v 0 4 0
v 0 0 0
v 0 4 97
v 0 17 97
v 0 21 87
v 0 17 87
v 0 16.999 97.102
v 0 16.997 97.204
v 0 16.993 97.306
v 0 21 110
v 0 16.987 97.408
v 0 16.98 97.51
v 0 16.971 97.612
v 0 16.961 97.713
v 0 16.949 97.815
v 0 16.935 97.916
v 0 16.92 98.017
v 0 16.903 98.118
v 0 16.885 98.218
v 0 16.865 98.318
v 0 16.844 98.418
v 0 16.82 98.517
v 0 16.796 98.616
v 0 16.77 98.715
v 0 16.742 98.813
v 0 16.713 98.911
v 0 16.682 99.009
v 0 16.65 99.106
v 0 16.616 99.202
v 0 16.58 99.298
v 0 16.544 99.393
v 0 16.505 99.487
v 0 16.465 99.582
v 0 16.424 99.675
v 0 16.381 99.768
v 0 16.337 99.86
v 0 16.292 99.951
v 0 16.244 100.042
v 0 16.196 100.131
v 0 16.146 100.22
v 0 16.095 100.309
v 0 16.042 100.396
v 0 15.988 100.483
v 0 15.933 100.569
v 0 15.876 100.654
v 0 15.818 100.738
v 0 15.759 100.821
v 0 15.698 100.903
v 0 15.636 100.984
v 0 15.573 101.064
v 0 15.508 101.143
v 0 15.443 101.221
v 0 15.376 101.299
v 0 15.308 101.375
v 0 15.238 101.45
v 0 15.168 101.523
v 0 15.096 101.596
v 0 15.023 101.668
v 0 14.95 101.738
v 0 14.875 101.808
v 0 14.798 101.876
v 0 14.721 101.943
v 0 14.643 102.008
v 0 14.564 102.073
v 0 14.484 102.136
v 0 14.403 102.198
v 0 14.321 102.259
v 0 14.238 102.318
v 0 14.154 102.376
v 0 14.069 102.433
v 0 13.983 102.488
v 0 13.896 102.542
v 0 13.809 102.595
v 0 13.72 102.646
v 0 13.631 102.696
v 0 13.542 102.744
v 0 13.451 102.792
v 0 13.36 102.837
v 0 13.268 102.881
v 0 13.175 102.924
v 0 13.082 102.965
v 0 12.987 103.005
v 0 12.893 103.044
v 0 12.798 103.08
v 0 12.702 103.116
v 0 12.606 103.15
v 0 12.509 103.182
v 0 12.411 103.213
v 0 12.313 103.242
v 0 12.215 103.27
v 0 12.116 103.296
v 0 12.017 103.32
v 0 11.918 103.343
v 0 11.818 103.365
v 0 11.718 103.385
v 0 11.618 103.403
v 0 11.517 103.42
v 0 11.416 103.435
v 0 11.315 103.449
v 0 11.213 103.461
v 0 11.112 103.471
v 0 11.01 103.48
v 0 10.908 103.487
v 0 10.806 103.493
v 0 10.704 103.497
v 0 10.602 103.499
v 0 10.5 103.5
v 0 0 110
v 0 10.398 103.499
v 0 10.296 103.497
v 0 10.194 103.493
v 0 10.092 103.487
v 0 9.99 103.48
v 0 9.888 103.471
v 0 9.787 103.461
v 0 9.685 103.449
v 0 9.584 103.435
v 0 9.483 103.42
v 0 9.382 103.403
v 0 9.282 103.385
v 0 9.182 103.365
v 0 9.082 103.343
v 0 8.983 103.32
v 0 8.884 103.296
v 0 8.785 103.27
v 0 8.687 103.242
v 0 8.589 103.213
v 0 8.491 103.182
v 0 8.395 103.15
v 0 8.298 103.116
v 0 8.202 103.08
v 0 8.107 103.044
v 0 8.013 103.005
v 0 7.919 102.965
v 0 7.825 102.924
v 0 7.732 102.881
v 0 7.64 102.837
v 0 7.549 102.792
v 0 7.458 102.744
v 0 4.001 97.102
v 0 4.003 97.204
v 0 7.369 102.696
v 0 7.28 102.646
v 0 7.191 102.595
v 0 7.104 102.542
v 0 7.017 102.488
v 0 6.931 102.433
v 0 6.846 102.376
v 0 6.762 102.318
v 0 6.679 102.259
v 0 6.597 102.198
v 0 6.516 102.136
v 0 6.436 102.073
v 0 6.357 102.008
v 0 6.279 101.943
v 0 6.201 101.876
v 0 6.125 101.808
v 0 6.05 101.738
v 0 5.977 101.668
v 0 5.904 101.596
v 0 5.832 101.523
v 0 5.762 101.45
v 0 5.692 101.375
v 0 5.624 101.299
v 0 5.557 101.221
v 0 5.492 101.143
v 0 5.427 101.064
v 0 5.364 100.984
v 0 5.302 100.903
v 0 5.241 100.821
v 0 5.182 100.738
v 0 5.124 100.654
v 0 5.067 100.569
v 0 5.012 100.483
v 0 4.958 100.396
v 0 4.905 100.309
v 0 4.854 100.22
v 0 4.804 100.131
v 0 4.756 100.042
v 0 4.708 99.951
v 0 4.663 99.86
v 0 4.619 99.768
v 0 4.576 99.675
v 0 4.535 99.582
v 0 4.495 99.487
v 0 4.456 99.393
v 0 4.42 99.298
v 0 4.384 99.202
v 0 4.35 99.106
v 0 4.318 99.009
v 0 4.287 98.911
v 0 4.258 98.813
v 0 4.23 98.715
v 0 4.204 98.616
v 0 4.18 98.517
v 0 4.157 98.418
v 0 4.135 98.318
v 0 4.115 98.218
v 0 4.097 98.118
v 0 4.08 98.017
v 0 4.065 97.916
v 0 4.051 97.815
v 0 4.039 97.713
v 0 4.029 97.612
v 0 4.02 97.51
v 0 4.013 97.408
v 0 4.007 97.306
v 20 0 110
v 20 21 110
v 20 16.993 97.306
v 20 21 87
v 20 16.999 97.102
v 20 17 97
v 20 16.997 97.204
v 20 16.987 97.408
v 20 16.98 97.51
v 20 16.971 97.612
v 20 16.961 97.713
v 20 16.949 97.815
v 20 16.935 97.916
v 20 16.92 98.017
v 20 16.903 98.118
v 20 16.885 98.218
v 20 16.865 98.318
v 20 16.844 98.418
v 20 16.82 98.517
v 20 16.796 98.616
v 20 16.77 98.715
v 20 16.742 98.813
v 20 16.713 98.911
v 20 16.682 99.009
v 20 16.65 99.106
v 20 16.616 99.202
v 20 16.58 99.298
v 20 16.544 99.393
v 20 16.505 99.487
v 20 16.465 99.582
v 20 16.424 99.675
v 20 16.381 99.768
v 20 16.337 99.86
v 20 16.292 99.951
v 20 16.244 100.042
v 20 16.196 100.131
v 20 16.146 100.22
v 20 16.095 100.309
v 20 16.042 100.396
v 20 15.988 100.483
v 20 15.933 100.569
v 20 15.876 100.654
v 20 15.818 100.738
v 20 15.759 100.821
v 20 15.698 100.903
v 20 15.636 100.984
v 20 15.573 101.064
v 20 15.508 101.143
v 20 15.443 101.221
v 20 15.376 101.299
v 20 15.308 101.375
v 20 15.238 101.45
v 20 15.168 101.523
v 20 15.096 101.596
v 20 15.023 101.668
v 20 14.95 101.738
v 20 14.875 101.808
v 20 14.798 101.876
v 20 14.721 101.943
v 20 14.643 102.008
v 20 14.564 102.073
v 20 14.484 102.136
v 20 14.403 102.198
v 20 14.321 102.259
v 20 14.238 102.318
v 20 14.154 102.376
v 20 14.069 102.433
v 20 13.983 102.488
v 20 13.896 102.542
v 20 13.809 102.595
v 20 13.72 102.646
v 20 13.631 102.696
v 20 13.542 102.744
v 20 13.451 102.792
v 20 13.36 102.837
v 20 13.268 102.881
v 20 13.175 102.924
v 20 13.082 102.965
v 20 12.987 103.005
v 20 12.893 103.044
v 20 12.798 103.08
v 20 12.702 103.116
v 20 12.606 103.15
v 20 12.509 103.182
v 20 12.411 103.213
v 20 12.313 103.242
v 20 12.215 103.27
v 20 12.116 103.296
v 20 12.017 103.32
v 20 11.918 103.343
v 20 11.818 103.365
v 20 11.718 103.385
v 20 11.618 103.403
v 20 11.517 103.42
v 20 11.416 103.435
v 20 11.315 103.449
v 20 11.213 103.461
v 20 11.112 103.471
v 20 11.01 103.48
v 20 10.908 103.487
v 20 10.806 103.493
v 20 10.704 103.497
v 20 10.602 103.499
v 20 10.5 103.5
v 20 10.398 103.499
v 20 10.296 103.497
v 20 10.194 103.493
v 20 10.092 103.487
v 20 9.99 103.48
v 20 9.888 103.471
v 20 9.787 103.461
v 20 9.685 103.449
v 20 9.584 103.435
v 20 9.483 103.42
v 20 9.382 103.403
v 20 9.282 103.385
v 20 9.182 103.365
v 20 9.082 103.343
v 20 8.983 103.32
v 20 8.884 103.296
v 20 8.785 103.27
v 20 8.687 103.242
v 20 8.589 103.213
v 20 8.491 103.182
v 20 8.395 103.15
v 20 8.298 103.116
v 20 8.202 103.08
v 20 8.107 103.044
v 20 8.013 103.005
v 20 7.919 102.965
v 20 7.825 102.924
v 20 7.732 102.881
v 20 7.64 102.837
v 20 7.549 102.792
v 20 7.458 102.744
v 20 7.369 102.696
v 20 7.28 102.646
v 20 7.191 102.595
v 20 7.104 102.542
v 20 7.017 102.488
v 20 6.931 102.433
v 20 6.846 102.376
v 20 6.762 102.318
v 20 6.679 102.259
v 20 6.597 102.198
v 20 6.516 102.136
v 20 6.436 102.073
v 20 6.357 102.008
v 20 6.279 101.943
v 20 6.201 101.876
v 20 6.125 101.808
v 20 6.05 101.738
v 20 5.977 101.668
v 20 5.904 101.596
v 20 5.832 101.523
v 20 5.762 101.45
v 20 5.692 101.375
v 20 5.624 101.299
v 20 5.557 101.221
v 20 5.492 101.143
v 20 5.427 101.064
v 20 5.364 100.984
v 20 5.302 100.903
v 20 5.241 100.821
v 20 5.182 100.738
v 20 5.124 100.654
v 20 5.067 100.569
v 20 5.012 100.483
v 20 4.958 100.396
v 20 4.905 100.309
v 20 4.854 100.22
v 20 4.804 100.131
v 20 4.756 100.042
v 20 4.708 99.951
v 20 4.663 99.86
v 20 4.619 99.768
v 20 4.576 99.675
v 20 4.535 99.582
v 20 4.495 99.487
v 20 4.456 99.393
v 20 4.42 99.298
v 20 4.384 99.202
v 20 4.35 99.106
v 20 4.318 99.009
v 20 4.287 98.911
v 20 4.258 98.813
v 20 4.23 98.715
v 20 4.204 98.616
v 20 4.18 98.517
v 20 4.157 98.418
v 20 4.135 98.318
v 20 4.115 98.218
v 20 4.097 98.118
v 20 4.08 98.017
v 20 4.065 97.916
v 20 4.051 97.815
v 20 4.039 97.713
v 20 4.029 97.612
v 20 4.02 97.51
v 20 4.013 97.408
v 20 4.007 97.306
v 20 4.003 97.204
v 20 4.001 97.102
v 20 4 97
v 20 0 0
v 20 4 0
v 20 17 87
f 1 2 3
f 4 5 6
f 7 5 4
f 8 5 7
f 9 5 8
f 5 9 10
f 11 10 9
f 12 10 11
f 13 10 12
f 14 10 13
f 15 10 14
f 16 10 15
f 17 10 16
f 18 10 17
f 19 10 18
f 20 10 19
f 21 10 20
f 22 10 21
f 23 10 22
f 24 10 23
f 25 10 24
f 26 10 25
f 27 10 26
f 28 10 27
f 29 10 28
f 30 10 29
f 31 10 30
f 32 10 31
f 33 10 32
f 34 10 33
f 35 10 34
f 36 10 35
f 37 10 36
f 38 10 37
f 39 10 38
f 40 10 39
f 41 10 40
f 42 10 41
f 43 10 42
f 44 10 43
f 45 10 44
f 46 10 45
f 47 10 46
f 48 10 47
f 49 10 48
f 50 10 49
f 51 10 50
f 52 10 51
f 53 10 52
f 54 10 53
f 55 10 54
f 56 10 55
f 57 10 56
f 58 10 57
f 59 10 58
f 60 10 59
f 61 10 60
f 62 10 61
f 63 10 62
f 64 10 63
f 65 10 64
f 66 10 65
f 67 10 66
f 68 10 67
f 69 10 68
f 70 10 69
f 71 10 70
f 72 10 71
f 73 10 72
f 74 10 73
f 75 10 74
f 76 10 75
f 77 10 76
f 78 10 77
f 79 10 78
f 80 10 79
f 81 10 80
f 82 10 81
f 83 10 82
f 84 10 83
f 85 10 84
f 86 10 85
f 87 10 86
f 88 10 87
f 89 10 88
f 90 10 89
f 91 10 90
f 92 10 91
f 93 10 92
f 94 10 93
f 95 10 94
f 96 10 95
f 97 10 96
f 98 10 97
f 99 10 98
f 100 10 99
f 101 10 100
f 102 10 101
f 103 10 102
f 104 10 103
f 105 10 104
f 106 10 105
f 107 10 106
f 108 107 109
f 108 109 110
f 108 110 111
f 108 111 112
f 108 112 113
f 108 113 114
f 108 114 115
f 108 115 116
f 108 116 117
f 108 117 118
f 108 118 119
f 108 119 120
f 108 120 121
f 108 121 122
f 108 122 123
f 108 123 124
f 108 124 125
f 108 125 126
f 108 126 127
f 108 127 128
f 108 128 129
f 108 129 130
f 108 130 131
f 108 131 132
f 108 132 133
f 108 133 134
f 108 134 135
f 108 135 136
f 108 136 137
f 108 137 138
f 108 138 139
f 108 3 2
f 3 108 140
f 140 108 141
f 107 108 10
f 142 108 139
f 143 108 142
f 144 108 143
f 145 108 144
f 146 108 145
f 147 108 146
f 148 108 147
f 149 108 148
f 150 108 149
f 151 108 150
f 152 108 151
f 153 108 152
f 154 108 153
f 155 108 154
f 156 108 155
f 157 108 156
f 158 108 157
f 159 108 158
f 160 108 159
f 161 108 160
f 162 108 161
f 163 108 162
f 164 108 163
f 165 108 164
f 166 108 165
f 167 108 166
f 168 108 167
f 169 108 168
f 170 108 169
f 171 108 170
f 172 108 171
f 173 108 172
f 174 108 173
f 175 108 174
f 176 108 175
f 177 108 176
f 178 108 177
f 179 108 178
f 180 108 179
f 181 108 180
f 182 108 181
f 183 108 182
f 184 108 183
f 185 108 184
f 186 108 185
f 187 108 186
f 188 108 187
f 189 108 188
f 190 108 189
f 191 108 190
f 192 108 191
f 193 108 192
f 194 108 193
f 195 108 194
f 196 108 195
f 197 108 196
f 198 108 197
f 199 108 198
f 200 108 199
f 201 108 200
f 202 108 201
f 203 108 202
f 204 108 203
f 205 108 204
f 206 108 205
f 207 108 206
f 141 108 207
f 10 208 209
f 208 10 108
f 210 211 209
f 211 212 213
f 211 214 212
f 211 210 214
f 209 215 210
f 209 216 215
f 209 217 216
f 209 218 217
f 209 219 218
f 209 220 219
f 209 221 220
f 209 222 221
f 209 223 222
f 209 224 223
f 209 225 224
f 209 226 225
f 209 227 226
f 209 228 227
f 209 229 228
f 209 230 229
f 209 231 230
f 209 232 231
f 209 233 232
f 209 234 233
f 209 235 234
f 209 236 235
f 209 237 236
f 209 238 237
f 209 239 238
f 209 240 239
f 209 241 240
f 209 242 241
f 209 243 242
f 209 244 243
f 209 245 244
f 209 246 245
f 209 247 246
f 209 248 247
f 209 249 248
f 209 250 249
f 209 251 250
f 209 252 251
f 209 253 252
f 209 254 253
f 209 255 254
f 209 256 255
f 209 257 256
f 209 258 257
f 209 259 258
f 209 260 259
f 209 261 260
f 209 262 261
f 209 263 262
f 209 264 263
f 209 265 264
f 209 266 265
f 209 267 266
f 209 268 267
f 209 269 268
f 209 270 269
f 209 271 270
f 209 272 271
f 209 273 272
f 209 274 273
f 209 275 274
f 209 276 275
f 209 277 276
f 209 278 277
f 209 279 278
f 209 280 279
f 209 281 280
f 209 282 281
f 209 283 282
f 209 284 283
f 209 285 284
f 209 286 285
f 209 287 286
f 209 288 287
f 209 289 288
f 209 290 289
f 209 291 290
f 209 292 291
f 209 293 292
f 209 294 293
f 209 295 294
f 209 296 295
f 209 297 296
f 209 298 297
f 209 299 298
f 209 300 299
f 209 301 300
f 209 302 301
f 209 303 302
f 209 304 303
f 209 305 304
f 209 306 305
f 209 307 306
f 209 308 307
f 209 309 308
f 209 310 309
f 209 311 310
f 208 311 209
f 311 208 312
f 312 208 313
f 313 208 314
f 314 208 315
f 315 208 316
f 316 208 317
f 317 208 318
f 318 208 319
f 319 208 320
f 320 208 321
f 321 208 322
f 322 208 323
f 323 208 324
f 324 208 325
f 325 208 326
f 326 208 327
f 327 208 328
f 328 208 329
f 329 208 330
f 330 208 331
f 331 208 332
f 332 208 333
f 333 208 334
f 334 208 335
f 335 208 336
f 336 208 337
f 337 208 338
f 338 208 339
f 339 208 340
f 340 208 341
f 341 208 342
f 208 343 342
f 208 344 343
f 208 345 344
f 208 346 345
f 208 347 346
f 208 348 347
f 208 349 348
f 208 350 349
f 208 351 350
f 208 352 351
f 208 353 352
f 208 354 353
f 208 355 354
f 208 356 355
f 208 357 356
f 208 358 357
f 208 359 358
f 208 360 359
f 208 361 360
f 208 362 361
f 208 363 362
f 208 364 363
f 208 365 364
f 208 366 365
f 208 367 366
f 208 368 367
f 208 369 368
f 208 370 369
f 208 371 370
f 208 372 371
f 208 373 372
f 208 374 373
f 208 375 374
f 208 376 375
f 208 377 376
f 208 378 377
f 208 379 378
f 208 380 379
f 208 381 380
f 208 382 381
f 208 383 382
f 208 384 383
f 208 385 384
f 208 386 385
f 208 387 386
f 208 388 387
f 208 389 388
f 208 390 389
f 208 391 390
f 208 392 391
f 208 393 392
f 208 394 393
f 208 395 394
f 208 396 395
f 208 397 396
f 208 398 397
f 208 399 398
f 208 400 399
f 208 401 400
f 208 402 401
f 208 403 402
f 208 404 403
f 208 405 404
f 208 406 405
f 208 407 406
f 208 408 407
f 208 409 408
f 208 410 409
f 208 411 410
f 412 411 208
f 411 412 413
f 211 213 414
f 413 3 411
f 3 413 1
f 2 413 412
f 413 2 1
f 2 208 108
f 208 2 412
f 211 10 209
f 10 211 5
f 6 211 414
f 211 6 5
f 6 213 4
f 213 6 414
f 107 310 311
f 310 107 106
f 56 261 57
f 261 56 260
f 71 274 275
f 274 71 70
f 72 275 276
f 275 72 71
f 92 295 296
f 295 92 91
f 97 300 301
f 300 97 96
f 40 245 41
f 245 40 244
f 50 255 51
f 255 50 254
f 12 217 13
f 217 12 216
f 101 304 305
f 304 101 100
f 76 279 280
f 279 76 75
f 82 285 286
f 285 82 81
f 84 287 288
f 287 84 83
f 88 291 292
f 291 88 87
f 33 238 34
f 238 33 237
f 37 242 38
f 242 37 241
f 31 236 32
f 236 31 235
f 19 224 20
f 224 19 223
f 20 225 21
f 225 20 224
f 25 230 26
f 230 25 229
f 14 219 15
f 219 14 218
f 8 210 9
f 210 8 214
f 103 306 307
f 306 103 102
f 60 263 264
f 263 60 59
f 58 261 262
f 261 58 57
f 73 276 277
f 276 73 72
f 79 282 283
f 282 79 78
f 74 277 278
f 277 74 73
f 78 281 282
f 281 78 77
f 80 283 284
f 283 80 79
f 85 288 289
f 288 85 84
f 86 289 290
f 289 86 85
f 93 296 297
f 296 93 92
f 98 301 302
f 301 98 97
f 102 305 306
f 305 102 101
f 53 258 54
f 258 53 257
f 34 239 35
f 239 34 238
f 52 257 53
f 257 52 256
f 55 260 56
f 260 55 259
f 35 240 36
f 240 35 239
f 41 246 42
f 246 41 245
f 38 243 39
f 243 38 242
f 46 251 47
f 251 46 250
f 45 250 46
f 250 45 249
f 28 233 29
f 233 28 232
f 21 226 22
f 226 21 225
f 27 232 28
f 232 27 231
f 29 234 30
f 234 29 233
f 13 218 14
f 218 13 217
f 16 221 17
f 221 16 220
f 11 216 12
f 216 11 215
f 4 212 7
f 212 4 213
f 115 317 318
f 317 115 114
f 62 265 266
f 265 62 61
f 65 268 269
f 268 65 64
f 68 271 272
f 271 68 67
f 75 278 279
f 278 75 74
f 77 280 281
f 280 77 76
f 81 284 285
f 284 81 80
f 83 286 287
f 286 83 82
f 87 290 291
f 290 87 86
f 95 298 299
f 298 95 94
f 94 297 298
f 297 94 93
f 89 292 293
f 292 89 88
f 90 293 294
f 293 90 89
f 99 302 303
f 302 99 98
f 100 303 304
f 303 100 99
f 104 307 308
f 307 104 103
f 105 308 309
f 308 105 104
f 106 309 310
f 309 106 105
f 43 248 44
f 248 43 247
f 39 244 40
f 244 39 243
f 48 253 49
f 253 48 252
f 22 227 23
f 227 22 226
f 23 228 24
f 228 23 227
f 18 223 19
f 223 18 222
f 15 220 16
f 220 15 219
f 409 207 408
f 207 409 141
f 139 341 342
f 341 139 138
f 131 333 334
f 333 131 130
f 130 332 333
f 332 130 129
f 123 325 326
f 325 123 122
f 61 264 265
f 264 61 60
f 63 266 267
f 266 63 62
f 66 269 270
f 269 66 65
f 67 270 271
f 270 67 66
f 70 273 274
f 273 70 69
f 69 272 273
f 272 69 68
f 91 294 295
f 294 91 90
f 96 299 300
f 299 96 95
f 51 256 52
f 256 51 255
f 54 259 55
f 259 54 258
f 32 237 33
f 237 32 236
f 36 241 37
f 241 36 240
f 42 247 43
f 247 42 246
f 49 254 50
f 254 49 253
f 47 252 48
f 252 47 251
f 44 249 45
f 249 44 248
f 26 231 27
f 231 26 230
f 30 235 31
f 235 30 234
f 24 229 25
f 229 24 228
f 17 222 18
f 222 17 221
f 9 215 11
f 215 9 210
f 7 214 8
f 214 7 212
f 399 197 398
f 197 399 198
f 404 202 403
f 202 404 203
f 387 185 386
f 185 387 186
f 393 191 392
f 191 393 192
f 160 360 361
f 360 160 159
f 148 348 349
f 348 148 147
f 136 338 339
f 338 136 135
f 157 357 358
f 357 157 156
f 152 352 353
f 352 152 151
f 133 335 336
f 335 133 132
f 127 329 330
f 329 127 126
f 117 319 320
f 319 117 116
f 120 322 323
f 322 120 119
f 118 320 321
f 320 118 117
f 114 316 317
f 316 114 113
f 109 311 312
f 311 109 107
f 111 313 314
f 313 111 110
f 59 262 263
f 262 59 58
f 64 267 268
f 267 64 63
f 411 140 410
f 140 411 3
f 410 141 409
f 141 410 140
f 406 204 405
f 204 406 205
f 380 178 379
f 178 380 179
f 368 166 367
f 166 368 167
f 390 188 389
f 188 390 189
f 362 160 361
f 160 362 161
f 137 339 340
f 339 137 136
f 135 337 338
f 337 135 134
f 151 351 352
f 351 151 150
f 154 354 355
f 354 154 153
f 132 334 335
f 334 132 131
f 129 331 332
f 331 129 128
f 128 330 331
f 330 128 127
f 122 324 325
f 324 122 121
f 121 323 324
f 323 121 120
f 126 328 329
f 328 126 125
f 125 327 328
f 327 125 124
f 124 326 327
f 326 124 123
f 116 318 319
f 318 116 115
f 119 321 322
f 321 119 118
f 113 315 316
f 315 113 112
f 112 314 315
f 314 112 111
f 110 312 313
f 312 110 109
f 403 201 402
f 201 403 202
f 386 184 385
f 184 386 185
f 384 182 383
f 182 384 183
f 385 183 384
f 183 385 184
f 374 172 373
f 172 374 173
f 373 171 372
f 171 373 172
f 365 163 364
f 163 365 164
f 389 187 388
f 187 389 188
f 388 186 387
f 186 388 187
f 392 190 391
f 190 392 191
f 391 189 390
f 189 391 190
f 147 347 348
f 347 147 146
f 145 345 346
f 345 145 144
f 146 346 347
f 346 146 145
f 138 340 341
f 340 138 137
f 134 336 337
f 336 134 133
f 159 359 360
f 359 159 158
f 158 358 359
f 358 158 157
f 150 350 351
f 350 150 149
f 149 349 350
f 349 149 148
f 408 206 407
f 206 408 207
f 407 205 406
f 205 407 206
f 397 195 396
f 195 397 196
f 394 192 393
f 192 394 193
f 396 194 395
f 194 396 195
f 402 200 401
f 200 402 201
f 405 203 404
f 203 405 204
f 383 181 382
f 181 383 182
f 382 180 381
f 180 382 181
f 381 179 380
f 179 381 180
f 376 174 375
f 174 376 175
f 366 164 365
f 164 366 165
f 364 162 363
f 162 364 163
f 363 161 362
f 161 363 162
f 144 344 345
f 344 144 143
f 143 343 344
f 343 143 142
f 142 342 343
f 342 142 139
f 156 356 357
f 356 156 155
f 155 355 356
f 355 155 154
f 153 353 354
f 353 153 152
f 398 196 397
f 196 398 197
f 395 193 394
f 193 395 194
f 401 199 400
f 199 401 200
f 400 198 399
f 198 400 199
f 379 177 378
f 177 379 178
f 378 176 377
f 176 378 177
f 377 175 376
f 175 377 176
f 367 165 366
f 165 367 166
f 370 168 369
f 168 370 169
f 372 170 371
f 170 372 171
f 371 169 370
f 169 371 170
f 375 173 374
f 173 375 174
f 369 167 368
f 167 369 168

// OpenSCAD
$fn=400;

dp_height=110;
dp_width=20;
dp_hanger_spacing=13;
dp_material_size=4;
dp_short_tail=10;

difference() {
    union() {
        //Vertical wall
        color("green")
        cube([dp_width,dp_material_size,dp_height]);
        
        // Retainer
        color("blue")
        translate([0,0,dp_height-dp_hanger_spacing])
        cube([dp_width,dp_hanger_spacing+dp_material_size*2,dp_hanger_spacing]);
        
        //Vertical wall (short)
        color("green")
        translate([0, dp_hanger_spacing+dp_material_size,dp_height-dp_short_tail-dp_hanger_spacing])
        cube([dp_width,dp_material_size,dp_short_tail]);
    }
    
    
color("red")
translate([-1,dp_material_size+dp_hanger_spacing/2,dp_height-dp_hanger_spacing])
rotate([0,90,0])
cylinder(dp_width+2, dp_hanger_spacing/2, dp_hanger_spacing/2);
    
}
